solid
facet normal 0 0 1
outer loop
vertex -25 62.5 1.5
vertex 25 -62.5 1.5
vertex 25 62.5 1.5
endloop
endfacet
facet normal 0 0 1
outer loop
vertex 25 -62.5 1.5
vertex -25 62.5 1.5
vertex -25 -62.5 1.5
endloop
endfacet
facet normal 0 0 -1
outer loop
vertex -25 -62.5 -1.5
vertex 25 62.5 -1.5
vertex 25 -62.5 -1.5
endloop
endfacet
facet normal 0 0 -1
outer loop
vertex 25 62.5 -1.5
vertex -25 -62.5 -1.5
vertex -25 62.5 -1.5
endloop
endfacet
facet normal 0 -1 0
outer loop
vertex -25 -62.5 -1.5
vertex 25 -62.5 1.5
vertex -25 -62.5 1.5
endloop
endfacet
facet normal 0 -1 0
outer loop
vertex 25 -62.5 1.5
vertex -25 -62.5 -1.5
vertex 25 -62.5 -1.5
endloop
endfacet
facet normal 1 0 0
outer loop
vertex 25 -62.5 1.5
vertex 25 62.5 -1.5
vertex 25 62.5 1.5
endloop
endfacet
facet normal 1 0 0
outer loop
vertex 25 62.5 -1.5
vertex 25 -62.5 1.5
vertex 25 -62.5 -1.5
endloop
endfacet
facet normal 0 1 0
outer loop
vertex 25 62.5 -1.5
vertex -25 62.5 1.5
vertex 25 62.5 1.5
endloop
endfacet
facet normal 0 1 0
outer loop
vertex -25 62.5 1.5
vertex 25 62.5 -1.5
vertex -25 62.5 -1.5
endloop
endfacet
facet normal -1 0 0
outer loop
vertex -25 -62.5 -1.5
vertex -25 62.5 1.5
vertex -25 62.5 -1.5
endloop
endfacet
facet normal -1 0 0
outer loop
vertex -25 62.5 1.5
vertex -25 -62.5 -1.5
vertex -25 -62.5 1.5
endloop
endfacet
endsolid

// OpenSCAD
// ========================================
// a plate 50 mm wide 125 mm deep and 3 mm thick
// NeuroCAD canonical IR; dimensions are millimetres
// ========================================
$fn = 48;

cube(size=[50, 125, 3], center=true);
